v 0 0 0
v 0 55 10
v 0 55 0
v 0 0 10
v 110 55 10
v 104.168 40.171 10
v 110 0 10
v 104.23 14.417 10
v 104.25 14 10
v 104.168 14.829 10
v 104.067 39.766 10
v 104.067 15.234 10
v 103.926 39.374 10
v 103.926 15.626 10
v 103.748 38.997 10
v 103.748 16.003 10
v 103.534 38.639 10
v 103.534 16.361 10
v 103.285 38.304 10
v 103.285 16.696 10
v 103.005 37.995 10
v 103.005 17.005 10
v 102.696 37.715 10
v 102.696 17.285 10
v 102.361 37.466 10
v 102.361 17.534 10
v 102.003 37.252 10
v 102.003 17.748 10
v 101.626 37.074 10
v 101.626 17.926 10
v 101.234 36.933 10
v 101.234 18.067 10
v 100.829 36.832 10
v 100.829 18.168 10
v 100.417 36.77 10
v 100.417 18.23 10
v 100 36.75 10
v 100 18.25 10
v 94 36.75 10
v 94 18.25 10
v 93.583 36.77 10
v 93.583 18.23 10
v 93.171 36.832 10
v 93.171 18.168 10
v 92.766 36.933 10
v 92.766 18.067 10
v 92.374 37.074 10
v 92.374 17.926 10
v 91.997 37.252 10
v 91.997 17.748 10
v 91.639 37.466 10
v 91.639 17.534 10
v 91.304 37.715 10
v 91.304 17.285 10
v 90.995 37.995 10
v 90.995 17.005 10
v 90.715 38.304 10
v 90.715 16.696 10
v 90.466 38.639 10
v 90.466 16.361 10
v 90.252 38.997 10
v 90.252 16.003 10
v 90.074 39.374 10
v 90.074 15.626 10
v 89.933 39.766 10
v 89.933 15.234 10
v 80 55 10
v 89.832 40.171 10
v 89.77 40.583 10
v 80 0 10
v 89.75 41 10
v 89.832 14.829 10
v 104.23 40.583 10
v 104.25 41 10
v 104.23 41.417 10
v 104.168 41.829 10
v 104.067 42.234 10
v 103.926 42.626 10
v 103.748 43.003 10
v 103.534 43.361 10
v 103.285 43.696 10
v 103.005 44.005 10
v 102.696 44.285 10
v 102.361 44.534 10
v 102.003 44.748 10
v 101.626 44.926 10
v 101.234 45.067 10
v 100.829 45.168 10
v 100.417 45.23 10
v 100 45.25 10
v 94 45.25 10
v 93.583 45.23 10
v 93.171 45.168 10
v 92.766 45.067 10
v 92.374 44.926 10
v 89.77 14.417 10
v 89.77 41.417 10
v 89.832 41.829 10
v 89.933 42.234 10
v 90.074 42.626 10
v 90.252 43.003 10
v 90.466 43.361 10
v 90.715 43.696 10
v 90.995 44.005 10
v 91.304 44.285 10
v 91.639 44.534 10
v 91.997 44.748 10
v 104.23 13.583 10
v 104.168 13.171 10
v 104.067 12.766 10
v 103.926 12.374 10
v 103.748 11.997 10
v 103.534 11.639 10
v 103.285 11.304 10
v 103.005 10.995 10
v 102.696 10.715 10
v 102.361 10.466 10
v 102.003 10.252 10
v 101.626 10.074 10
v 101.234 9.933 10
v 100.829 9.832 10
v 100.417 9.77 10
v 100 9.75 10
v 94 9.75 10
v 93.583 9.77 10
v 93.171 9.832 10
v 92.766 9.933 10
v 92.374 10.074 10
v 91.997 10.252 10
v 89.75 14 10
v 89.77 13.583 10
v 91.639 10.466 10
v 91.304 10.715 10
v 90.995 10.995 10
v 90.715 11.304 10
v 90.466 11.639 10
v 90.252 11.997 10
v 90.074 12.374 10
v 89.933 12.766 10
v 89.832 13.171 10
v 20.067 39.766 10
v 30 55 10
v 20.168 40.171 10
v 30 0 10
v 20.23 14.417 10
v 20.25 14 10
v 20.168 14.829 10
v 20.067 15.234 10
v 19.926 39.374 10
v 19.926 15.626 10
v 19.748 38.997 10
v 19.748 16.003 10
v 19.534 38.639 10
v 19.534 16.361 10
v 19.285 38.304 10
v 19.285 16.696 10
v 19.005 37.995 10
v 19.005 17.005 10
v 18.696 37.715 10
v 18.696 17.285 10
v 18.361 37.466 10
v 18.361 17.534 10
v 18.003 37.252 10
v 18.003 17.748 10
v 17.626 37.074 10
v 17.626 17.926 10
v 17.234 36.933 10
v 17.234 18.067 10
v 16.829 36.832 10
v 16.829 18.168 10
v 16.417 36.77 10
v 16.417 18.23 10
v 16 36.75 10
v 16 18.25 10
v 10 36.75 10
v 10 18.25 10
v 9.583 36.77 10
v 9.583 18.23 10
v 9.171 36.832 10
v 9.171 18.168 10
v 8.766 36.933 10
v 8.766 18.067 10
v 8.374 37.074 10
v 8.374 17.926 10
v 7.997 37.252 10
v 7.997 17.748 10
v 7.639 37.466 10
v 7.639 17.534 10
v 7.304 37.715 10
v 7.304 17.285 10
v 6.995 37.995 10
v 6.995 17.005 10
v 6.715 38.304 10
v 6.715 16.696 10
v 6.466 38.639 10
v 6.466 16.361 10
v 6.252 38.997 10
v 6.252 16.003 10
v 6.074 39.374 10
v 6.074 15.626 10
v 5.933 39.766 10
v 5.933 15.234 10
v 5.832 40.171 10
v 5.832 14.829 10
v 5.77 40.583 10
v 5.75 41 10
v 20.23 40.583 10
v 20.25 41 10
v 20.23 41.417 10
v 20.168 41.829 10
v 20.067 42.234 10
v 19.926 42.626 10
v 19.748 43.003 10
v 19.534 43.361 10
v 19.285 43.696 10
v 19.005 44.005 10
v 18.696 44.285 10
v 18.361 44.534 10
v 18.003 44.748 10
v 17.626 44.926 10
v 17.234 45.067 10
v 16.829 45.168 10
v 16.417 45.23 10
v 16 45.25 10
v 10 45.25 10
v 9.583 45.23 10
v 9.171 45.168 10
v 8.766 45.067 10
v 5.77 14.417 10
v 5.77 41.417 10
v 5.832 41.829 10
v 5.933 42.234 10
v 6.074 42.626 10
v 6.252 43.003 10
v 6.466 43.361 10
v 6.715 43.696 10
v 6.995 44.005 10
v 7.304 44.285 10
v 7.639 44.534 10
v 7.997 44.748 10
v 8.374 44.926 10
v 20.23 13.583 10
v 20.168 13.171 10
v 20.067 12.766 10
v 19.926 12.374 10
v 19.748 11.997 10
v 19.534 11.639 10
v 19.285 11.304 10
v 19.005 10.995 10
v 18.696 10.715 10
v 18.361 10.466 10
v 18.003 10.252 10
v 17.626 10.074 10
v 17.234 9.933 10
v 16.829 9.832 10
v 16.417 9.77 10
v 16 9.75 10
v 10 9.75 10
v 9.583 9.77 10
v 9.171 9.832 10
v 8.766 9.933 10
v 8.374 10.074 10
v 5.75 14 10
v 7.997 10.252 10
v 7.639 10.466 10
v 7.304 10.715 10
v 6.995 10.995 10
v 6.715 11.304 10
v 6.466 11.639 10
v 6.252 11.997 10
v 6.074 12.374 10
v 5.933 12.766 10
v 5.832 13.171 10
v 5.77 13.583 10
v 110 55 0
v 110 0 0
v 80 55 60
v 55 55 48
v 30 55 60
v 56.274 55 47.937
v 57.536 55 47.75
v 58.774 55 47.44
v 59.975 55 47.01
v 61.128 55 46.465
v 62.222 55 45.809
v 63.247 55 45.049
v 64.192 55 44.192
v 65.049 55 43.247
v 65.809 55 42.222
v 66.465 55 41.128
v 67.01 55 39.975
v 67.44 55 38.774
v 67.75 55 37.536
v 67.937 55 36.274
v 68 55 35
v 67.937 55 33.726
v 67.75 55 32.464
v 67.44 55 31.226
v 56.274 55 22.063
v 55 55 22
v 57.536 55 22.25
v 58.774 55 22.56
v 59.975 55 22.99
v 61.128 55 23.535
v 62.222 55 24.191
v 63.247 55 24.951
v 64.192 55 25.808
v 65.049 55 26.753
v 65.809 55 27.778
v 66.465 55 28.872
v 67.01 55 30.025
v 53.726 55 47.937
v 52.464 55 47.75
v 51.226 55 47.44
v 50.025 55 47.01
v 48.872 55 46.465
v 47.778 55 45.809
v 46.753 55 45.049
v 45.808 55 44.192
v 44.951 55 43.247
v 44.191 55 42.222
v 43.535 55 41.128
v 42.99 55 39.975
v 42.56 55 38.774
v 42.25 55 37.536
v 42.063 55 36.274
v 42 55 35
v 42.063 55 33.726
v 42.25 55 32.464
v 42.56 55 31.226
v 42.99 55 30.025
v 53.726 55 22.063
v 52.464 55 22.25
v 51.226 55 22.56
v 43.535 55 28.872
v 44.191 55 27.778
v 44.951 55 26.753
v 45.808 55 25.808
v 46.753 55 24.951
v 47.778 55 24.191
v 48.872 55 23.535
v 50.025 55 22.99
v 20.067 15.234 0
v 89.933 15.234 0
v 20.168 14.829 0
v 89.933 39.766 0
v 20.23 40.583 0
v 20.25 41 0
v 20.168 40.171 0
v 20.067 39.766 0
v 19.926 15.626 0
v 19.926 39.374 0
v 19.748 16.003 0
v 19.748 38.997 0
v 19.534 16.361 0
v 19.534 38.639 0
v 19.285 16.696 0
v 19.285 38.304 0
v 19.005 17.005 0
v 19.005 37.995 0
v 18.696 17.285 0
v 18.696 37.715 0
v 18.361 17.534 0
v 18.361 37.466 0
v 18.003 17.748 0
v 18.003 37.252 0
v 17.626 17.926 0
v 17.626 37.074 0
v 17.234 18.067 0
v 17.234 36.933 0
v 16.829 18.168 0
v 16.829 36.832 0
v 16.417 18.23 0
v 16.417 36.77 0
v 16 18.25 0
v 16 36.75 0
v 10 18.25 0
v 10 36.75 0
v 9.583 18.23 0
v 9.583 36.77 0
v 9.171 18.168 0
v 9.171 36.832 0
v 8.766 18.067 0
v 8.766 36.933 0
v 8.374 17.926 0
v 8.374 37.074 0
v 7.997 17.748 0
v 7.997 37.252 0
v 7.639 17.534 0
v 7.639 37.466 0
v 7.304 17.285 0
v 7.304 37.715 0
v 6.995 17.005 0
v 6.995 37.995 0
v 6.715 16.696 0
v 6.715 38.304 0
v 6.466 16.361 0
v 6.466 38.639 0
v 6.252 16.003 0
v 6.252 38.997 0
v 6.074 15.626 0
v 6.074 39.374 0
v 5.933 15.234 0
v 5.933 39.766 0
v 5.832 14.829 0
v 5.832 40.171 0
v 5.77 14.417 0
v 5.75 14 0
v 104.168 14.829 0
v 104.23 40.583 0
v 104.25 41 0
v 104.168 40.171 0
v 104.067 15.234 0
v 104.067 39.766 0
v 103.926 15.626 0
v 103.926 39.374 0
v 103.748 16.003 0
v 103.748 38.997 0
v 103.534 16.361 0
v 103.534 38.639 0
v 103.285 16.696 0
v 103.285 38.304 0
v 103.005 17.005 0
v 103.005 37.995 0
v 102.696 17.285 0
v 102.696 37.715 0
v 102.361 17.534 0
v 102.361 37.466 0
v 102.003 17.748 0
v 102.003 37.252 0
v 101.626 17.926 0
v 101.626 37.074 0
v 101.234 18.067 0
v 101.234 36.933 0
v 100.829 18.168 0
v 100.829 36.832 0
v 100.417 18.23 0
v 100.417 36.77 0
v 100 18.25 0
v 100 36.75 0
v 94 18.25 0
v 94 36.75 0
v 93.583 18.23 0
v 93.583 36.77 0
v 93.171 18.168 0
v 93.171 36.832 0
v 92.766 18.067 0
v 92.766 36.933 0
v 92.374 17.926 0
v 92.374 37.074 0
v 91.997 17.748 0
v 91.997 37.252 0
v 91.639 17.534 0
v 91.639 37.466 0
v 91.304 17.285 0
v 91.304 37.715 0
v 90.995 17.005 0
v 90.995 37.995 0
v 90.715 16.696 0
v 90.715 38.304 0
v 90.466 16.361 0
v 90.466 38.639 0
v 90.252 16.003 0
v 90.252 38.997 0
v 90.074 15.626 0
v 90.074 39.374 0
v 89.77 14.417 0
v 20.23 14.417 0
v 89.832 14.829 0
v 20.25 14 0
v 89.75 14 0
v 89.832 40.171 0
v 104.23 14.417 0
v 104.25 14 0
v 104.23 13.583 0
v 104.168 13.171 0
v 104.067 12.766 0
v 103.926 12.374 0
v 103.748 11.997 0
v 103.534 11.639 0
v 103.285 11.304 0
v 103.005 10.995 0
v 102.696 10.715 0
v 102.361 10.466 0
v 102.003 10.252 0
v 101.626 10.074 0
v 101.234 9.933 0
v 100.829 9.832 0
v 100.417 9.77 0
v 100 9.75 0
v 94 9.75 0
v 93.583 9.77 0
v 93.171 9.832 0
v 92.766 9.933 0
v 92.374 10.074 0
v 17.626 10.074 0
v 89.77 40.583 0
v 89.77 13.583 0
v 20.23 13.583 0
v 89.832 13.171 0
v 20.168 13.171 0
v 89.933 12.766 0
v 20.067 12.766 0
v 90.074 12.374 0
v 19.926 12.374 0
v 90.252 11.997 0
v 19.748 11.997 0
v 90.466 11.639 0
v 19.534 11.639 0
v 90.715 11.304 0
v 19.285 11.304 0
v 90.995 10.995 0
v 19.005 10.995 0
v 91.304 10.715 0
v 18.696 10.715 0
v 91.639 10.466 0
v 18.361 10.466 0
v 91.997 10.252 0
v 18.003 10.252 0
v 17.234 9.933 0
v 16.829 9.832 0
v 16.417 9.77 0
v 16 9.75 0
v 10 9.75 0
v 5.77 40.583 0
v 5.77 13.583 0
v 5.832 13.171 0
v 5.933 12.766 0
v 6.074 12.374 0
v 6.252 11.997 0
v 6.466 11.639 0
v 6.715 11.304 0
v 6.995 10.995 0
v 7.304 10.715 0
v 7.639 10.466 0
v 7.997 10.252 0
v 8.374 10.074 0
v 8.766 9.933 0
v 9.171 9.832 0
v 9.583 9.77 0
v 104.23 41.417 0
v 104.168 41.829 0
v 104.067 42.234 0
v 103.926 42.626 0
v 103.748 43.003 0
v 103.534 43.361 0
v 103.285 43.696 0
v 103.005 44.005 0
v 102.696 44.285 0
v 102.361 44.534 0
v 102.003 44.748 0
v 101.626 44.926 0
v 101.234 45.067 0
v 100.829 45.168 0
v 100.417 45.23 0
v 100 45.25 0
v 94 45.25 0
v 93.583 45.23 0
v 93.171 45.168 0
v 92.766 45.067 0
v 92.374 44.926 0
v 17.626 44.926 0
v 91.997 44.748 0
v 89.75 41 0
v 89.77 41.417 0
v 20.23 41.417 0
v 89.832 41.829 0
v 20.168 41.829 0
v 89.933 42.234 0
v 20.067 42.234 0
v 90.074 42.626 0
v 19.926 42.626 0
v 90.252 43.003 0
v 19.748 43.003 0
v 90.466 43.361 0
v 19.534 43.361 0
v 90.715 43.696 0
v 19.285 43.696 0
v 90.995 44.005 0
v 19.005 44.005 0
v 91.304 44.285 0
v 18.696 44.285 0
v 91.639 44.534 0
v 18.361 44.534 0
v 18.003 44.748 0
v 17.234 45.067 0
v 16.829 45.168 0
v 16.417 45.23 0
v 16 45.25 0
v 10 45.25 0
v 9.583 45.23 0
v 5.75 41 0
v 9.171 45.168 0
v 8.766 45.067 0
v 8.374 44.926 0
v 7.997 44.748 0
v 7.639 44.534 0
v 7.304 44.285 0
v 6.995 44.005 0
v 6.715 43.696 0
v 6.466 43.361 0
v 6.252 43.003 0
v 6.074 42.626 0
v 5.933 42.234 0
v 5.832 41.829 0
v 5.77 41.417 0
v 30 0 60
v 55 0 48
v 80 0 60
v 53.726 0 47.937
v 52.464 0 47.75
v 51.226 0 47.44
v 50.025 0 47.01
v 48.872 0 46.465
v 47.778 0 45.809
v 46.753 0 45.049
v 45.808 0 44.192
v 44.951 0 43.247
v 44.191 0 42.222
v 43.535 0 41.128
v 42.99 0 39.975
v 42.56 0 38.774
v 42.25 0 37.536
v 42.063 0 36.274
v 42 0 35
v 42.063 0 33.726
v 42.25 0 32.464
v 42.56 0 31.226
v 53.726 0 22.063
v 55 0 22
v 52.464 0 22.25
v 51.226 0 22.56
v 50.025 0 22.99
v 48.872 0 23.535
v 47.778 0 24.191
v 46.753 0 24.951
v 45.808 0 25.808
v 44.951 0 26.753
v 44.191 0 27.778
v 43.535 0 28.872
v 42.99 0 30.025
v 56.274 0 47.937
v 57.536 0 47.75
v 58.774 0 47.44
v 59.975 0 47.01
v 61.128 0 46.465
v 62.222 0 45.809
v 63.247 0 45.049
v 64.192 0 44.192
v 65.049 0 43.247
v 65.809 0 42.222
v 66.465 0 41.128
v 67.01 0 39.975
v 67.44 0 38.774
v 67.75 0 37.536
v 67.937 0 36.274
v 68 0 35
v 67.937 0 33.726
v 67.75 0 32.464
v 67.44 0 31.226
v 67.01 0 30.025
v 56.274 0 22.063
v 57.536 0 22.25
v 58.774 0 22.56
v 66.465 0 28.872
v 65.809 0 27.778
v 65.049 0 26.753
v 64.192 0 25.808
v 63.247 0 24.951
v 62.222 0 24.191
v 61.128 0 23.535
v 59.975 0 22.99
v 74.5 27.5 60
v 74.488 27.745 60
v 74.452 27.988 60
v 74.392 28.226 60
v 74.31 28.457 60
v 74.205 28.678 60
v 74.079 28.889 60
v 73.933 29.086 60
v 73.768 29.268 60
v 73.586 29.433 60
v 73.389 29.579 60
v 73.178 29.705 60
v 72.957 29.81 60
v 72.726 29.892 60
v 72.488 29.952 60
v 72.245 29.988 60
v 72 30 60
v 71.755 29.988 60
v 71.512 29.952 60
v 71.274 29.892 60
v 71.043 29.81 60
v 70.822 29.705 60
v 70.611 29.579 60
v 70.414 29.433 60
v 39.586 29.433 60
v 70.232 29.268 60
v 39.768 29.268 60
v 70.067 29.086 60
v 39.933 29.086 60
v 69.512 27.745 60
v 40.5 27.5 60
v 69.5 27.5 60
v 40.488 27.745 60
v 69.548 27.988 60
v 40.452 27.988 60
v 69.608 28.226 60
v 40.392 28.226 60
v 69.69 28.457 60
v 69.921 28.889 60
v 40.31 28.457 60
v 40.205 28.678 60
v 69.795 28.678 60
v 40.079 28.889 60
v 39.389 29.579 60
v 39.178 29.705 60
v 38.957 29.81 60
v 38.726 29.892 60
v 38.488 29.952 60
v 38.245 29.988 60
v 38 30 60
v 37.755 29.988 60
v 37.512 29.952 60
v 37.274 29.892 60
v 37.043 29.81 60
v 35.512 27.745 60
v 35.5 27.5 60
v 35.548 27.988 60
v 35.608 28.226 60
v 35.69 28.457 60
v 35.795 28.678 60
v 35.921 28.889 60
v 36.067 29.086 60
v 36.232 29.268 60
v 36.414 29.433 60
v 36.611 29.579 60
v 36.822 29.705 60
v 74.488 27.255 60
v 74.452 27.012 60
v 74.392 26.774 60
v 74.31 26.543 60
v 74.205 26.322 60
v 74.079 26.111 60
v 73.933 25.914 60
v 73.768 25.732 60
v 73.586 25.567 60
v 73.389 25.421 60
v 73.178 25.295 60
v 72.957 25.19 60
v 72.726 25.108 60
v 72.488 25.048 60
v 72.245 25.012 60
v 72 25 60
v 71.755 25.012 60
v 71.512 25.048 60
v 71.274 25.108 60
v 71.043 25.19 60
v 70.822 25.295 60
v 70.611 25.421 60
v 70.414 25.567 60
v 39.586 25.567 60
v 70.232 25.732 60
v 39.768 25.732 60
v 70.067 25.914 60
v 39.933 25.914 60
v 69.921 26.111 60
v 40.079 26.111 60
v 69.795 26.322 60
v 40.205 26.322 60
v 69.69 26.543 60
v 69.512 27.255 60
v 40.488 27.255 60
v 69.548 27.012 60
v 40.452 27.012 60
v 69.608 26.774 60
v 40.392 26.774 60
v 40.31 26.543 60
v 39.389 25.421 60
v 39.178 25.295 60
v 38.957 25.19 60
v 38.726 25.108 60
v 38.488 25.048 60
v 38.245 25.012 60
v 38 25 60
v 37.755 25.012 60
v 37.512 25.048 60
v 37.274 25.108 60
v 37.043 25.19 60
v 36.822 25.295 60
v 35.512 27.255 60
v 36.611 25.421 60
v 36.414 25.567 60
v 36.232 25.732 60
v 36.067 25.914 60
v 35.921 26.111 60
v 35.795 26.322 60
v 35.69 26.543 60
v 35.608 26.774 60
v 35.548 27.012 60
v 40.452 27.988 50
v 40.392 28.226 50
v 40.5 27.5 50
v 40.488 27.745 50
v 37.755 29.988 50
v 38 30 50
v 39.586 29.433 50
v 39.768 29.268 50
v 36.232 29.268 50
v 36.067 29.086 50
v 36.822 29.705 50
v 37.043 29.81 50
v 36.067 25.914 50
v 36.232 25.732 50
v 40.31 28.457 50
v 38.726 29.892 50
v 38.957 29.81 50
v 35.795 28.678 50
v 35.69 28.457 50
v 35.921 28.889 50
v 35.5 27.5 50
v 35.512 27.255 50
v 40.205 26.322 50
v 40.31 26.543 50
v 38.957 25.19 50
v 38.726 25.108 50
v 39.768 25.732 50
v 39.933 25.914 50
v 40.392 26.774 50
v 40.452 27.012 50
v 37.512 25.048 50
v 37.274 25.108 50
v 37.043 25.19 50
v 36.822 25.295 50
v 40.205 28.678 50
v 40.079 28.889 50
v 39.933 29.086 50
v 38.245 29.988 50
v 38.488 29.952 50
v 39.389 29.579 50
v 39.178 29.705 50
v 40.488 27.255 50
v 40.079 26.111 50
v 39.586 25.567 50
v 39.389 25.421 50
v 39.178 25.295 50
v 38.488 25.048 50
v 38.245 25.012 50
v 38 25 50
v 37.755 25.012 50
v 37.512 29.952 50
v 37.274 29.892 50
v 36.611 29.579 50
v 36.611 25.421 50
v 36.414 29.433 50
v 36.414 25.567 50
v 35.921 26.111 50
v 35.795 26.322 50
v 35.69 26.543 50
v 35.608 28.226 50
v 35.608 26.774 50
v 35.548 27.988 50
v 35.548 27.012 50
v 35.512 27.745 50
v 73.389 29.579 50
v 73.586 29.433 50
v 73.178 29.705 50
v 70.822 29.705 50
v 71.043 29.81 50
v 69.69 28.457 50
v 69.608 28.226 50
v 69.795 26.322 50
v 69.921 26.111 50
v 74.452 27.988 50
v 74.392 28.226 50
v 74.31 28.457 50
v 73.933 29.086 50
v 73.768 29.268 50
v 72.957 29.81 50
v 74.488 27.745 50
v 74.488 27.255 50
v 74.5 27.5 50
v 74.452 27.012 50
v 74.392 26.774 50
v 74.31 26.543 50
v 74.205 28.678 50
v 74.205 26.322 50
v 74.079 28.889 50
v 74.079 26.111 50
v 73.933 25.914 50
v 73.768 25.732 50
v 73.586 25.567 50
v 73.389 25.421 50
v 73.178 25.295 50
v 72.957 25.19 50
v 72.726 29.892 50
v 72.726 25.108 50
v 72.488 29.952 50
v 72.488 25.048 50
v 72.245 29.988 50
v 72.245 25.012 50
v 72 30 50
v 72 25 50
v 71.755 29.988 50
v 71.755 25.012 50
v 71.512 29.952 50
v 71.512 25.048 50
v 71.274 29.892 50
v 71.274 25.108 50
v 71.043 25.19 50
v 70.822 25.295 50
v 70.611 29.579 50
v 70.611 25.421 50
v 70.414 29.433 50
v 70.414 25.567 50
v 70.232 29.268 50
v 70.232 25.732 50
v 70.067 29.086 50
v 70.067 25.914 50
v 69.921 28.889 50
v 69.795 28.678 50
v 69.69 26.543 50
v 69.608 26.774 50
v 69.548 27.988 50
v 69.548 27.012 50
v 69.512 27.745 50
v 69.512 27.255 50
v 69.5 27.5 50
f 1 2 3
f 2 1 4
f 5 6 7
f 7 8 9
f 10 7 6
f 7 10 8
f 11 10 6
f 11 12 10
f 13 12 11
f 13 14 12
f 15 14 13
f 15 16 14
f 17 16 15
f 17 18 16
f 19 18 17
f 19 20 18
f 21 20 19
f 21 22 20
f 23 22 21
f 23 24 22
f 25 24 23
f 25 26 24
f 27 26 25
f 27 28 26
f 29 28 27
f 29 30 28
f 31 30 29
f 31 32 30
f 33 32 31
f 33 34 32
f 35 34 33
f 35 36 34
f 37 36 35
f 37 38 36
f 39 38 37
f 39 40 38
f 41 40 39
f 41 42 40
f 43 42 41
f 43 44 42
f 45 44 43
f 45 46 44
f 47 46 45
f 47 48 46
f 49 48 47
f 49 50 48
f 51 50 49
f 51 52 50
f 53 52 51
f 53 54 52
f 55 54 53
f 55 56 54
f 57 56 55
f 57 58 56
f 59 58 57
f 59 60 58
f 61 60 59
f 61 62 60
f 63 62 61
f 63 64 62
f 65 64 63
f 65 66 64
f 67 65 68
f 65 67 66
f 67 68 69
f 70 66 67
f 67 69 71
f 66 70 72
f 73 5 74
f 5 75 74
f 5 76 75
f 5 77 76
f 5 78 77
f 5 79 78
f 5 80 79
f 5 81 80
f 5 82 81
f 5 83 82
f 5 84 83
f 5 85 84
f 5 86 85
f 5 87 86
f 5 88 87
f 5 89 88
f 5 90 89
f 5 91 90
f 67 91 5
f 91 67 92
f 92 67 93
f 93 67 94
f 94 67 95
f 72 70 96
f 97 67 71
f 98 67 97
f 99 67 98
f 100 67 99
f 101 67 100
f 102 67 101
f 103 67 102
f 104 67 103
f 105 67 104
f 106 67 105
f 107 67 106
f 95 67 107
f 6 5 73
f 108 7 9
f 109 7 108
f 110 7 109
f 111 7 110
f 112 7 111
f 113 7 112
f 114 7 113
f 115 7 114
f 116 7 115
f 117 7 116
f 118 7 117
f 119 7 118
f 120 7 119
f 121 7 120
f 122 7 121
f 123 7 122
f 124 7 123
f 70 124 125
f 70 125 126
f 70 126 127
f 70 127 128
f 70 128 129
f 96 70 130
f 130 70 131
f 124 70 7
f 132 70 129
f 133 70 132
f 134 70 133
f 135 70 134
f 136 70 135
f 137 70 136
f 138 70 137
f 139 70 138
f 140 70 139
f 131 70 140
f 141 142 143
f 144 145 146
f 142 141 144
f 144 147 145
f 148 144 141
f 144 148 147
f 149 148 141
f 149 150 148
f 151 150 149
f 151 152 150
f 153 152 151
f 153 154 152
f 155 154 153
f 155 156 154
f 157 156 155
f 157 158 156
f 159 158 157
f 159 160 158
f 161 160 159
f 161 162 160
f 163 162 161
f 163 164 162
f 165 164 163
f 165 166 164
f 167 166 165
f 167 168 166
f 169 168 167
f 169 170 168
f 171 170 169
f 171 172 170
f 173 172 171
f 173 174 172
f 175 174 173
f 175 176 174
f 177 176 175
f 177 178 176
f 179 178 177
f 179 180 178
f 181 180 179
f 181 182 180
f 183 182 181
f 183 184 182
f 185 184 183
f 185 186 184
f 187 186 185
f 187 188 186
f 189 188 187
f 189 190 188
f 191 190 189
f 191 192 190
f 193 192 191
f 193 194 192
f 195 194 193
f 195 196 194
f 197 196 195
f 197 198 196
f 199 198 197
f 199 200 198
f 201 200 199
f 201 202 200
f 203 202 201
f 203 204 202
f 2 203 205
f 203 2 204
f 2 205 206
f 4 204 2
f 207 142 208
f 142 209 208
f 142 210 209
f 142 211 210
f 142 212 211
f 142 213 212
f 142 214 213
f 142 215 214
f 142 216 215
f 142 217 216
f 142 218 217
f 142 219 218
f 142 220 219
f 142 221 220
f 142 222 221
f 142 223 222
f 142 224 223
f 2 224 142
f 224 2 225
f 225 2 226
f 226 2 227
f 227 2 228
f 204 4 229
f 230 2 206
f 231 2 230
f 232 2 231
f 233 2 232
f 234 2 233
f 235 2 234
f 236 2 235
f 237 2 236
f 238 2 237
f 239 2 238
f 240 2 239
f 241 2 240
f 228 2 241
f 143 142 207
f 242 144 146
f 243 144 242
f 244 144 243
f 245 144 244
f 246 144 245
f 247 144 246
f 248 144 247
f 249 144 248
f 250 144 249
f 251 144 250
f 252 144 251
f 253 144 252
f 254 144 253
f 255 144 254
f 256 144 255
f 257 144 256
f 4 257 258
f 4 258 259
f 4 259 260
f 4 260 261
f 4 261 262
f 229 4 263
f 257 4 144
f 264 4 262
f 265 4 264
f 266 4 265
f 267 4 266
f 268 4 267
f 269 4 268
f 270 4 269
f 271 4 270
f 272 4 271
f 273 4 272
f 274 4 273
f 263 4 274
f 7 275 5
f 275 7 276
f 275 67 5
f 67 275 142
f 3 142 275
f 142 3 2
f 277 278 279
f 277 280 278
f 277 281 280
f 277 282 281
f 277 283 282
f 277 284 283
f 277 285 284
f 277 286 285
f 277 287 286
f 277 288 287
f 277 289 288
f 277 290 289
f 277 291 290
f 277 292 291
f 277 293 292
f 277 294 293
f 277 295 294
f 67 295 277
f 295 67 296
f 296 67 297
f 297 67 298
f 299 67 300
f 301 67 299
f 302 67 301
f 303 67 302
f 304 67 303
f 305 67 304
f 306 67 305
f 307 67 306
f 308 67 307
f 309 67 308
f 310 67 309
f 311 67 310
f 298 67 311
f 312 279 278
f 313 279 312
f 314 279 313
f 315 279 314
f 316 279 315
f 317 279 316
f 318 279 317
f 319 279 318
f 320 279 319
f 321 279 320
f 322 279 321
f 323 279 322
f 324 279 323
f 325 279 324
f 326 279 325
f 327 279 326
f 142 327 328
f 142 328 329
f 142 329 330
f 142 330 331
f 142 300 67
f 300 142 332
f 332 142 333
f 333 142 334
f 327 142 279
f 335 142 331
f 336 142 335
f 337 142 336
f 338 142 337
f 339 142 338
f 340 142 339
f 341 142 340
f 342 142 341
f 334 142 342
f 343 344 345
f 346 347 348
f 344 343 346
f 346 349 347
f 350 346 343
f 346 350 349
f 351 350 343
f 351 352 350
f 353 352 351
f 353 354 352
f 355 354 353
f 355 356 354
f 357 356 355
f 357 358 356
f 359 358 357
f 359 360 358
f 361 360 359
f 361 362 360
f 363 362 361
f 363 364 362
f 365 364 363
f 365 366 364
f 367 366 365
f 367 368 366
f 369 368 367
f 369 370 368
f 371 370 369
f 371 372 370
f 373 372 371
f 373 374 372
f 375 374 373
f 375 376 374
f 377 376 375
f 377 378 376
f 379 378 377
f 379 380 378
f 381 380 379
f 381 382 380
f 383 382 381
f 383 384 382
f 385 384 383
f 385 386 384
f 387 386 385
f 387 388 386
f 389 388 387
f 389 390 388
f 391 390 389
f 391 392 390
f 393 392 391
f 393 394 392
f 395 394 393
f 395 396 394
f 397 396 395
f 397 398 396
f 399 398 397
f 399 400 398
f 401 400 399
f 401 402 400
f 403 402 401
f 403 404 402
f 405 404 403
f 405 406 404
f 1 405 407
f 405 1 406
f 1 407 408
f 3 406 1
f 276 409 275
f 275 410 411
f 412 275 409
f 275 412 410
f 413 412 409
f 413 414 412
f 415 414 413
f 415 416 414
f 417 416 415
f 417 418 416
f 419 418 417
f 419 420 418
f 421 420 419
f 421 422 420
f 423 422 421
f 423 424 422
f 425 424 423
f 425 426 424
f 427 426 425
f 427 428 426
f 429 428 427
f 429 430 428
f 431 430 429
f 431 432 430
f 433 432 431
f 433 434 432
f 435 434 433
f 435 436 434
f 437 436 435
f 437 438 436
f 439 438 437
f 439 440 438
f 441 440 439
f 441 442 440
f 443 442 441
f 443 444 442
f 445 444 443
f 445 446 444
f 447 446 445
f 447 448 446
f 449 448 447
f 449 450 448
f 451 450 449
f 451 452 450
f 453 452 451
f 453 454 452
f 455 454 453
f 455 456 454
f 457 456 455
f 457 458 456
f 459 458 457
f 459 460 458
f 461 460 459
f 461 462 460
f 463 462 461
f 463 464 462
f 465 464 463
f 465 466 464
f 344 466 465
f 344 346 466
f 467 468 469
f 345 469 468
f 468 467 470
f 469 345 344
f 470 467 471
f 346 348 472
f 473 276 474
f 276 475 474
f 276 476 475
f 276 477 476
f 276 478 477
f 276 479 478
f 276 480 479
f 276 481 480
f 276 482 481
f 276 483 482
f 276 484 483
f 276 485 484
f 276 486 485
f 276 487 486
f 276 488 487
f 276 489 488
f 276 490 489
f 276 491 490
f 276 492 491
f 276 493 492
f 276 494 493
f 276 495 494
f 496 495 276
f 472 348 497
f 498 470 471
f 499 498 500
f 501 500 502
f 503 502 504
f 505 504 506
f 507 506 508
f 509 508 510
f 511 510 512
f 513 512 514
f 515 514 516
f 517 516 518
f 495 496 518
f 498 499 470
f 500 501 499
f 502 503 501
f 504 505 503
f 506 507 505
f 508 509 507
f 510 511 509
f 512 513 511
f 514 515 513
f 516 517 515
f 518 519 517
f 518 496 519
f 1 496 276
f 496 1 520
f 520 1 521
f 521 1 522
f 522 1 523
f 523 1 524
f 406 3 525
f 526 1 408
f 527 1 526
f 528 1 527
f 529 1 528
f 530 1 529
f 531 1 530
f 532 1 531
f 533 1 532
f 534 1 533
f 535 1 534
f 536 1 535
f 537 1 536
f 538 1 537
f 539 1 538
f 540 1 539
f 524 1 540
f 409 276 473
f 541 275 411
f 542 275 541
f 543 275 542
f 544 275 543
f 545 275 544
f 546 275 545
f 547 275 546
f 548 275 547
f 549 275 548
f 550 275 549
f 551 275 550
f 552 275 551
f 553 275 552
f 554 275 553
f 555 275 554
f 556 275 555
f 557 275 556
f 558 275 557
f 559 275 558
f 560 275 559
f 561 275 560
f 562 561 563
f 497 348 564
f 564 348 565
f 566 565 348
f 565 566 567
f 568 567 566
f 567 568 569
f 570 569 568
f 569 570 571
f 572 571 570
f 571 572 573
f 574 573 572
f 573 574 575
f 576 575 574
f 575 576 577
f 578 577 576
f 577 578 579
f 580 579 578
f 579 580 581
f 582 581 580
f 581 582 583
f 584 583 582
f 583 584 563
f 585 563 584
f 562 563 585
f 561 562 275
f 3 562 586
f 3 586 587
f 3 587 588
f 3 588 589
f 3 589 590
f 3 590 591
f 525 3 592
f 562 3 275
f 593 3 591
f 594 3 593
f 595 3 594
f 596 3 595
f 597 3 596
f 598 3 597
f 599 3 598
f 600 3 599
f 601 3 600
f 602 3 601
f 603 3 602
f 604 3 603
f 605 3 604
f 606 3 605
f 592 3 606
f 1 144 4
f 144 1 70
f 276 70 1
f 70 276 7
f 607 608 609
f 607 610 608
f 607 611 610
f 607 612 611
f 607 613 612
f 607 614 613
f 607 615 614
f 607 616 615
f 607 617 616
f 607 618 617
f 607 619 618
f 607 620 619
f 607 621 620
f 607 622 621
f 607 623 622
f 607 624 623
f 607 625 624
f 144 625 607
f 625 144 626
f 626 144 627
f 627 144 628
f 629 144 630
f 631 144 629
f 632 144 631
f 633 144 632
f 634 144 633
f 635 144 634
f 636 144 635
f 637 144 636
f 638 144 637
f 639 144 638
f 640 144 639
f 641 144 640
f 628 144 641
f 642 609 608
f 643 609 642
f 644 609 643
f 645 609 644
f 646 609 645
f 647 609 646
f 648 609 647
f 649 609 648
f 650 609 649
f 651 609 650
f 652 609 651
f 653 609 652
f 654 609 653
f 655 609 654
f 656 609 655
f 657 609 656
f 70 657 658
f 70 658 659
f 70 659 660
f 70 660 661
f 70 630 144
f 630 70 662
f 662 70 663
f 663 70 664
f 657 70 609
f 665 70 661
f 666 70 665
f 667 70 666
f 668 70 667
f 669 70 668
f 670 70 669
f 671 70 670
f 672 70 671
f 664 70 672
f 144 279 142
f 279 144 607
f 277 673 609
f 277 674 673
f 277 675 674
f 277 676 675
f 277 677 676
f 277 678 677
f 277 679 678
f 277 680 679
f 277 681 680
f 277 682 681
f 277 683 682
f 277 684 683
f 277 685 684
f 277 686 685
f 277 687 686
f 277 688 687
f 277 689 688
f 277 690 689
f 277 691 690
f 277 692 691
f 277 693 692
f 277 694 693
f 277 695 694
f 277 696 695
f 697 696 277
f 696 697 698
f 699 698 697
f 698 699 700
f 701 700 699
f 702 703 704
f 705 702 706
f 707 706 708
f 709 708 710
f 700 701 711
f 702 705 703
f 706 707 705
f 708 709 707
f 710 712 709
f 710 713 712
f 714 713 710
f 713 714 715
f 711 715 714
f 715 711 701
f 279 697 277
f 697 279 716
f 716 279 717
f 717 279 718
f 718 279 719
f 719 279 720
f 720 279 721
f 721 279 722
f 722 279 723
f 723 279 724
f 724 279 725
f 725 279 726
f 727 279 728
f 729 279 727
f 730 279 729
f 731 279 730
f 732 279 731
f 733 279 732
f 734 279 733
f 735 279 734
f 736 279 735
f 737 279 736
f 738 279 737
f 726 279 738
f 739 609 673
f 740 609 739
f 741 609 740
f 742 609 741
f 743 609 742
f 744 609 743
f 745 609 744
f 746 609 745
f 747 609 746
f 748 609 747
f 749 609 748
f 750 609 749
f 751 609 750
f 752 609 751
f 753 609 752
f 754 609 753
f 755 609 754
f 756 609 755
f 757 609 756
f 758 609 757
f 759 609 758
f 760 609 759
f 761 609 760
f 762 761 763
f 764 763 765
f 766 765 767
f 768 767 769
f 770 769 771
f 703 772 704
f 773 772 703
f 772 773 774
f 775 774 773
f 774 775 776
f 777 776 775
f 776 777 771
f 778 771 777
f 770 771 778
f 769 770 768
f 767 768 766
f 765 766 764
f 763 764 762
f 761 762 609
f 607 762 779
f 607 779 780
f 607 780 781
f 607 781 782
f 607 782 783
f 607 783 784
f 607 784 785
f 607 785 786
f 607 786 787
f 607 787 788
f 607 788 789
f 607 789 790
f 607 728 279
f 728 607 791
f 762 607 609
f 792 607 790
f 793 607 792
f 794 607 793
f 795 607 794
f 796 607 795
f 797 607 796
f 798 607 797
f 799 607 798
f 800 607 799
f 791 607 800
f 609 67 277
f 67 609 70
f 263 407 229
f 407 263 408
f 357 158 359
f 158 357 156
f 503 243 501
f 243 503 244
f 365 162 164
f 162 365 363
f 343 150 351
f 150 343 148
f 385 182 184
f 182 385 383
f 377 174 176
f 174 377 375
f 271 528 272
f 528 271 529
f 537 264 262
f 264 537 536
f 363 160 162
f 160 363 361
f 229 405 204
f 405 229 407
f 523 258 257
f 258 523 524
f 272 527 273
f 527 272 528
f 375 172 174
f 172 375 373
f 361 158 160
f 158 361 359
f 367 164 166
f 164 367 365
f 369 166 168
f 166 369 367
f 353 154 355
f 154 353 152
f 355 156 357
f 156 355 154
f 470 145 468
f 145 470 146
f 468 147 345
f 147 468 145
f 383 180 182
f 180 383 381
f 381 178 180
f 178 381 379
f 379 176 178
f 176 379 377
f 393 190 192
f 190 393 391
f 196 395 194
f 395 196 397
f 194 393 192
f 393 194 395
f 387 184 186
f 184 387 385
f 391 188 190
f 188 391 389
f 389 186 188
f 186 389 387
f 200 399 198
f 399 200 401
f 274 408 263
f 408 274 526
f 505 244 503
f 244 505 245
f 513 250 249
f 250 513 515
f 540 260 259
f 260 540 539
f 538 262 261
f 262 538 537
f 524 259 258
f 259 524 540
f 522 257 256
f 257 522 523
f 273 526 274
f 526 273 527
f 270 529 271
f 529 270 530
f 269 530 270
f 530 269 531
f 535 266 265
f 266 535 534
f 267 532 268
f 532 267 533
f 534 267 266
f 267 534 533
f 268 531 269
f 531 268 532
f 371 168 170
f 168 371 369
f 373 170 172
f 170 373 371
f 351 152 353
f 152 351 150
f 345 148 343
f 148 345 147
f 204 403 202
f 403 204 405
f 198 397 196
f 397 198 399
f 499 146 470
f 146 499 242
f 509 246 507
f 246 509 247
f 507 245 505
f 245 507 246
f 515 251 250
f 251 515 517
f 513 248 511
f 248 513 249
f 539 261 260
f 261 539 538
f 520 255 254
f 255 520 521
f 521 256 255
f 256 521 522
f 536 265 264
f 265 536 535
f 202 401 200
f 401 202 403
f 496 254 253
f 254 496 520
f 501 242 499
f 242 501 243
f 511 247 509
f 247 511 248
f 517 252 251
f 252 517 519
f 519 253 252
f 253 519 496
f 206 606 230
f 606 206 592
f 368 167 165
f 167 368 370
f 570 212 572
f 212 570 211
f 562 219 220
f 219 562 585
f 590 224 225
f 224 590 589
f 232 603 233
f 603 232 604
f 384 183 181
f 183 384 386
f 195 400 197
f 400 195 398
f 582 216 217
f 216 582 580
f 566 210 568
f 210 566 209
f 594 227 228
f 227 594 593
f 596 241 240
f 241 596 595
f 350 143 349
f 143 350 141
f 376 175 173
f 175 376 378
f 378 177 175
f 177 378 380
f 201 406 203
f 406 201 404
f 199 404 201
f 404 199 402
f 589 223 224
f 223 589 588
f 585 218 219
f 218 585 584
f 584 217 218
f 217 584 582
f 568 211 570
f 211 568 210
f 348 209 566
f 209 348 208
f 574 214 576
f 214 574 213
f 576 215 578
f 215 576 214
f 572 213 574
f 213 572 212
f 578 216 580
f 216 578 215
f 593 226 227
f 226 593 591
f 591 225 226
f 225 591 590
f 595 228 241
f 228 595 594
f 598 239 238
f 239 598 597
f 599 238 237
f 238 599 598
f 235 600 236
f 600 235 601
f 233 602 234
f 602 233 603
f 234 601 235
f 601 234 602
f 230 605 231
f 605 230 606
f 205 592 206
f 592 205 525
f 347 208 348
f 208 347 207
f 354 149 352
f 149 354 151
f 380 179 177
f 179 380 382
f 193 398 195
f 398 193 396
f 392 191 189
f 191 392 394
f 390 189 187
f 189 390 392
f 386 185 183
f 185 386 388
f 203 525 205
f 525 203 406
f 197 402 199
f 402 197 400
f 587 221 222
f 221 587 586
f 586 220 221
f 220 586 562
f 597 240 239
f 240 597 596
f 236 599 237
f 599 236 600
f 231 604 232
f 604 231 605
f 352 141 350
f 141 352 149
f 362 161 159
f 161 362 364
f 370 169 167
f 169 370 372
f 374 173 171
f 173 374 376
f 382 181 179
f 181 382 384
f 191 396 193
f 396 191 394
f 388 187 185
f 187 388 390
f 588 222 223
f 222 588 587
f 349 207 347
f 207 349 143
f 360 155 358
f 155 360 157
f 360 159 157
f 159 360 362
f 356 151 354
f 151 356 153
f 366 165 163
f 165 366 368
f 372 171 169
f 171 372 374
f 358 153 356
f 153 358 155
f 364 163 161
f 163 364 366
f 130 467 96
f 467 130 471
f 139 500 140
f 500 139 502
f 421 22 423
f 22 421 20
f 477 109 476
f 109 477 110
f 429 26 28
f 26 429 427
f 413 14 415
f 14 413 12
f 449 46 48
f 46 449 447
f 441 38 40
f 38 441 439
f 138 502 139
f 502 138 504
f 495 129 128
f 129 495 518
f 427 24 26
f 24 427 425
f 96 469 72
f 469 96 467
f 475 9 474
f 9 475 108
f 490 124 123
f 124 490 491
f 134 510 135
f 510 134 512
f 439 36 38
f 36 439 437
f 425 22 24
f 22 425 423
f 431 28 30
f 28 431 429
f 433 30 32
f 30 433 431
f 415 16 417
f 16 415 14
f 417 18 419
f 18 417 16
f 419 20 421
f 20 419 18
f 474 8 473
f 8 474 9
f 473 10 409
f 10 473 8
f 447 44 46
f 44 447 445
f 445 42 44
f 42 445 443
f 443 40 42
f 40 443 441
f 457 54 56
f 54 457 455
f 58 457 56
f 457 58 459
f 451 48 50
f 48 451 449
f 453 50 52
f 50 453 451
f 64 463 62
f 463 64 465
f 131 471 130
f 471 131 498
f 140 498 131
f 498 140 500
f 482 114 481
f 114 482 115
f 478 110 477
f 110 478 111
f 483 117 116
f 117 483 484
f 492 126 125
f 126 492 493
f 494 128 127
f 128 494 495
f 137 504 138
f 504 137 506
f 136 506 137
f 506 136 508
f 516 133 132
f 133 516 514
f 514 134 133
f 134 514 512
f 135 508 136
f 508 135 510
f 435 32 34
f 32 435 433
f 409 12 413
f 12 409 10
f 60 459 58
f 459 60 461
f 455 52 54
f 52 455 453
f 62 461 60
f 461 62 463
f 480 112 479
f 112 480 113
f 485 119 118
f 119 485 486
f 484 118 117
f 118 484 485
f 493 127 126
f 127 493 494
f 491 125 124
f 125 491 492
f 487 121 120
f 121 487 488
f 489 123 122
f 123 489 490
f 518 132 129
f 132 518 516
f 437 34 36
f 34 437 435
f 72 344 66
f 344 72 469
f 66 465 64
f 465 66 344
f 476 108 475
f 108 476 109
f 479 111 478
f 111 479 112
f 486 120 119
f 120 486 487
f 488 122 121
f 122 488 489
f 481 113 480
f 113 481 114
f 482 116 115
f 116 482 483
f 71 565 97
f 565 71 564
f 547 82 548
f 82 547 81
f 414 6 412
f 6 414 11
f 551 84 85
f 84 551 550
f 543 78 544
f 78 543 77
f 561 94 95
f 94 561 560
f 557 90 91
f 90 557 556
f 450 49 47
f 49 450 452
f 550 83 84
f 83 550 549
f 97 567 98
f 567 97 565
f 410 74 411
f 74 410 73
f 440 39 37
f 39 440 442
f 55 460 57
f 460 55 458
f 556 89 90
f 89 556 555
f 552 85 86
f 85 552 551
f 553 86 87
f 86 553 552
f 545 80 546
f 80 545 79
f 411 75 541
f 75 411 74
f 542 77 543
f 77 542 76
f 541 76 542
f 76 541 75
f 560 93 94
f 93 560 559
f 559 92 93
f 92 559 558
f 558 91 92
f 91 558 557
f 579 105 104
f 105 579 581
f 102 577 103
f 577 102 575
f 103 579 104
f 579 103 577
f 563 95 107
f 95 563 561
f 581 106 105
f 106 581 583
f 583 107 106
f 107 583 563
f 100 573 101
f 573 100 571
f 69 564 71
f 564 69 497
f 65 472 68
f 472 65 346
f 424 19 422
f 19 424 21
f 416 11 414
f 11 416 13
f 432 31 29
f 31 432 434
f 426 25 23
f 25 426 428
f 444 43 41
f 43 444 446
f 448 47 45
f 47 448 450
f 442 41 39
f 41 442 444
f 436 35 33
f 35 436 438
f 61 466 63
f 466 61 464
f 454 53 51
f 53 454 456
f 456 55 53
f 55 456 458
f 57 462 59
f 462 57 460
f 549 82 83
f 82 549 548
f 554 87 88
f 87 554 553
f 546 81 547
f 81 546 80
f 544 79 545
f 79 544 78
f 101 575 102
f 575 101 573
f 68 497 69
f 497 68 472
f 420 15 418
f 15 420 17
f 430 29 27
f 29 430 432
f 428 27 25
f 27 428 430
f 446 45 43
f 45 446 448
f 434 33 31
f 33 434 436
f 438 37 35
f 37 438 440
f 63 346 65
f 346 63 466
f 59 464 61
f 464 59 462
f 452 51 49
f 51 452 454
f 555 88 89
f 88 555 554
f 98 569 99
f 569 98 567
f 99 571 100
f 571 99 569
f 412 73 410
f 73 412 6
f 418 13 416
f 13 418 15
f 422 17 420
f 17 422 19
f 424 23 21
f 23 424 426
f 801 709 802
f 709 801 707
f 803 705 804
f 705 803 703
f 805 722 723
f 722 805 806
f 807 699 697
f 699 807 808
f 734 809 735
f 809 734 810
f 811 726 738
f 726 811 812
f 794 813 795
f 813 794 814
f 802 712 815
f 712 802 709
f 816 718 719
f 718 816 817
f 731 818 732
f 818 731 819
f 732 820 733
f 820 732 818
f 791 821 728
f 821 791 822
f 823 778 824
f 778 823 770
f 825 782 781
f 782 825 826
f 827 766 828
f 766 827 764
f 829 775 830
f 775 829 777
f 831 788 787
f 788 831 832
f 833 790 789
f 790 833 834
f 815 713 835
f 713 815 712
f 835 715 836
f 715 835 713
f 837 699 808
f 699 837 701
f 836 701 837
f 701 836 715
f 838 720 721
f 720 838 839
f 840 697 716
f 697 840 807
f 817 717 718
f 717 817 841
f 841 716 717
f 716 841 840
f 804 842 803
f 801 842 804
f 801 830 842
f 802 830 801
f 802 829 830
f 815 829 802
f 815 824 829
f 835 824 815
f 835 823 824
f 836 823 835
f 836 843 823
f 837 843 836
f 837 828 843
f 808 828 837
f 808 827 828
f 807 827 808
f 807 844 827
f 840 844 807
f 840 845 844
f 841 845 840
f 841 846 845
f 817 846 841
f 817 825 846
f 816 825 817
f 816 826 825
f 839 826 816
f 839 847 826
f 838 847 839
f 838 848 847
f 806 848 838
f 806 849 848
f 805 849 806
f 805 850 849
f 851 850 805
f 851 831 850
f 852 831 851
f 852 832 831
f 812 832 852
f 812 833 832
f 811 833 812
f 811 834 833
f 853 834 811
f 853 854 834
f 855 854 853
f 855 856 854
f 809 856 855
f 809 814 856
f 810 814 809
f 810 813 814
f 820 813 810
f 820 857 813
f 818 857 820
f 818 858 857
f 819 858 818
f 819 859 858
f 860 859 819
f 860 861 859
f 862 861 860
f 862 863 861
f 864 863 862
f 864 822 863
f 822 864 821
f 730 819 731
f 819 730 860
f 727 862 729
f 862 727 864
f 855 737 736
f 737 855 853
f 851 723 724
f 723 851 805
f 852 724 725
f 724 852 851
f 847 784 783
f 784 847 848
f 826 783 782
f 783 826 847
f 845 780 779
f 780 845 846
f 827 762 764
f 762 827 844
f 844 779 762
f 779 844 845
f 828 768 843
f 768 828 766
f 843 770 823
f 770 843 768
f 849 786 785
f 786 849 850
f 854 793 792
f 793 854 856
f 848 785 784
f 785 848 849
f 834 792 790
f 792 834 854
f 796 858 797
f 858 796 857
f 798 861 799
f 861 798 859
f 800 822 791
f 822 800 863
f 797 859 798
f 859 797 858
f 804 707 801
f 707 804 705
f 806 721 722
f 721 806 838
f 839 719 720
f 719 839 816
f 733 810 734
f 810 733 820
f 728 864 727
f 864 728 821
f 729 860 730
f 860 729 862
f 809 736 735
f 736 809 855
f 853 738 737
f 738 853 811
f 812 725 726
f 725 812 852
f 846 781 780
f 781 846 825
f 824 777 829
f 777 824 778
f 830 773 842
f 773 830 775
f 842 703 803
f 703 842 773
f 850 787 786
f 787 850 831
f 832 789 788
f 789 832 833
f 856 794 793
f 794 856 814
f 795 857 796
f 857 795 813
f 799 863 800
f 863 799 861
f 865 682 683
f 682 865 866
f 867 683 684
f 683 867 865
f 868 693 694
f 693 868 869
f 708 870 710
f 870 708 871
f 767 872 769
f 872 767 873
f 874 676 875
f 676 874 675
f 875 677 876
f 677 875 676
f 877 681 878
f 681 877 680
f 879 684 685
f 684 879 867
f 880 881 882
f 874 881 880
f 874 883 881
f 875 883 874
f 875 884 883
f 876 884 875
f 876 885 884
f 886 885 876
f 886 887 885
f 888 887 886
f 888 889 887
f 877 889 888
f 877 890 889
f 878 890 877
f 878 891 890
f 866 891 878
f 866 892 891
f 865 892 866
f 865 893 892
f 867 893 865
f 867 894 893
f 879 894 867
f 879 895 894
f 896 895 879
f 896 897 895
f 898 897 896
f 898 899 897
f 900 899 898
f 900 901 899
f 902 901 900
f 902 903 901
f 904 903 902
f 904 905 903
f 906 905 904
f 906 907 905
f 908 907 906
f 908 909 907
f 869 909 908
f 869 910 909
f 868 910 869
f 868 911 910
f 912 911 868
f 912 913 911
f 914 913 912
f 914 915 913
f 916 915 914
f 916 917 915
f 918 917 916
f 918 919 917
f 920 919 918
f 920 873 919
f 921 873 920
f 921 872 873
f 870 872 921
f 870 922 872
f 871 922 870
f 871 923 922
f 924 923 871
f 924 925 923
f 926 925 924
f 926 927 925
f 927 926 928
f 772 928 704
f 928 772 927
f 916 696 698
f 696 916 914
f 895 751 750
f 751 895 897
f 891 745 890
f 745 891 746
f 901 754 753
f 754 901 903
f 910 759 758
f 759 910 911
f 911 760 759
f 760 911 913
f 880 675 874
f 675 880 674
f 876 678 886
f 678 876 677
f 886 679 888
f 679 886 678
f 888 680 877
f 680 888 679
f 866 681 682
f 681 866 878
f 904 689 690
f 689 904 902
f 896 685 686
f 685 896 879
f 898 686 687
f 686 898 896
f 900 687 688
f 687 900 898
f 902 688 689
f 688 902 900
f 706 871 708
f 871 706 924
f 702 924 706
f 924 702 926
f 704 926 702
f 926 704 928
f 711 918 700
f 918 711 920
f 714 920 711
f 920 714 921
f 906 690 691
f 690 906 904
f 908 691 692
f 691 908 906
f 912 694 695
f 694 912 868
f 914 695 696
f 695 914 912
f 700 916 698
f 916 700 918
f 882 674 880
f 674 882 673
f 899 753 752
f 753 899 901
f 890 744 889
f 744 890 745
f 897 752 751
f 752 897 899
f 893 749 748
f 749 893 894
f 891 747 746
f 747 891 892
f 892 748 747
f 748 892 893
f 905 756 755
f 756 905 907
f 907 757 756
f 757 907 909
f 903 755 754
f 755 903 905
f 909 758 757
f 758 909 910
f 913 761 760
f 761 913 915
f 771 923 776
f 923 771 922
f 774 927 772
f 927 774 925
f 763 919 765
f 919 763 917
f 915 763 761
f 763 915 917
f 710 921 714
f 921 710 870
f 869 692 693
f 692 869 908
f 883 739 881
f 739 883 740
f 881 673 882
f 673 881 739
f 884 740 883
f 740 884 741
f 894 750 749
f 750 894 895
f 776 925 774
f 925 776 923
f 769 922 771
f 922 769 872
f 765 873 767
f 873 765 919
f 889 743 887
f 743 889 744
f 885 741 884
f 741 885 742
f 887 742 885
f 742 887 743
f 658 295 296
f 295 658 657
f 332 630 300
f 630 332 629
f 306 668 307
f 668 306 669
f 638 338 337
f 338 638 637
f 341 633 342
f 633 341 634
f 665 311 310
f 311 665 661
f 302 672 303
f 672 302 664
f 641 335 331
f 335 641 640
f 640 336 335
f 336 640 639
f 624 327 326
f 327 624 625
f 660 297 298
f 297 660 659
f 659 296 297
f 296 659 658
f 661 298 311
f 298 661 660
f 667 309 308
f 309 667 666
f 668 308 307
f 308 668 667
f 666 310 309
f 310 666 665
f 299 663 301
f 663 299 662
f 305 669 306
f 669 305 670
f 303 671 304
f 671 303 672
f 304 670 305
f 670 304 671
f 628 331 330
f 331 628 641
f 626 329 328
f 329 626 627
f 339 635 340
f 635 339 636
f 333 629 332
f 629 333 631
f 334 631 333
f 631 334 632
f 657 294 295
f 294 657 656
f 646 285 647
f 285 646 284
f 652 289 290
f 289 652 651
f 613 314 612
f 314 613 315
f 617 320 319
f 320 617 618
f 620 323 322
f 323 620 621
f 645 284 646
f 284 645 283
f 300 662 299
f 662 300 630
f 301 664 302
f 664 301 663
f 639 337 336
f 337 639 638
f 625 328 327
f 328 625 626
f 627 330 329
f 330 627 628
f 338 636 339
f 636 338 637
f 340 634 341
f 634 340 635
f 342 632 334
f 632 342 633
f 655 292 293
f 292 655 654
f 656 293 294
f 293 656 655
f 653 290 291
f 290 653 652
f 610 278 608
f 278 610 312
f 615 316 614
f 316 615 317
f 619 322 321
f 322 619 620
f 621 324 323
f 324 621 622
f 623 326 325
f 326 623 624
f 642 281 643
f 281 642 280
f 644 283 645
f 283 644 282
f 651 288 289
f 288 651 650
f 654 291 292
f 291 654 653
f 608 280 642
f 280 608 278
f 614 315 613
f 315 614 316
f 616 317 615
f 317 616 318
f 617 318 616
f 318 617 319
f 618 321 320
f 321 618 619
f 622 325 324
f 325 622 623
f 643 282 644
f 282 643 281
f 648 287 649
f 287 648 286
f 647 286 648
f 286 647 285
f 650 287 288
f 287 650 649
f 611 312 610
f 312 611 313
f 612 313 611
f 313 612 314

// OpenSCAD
// Original MechIntel educational model. CC0-1.0. Units: mm.
// Not a standardized or load-rated component.
$fn=96;
length=110; depth=55; base=10; height=60; bore=26;
$fn=64;
difference(){
 union(){cube([length,depth,base]);translate([30,0,base]) cube([50,depth,height-base]);}
 translate([length/2,-1,35]) rotate([-90,0,0]) cylinder(d=bore,h=depth+2);
 for(x=[13,97]) for(y=[14,41]) hull(){
  translate([x-3,y,-1]) cylinder(d=8.5,h=base+2);
  translate([x+3,y,-1]) cylinder(d=8.5,h=base+2);
 }
 for(x=[38,72]) translate([x,depth/2,height-10]) cylinder(d=5,h=11);
}
